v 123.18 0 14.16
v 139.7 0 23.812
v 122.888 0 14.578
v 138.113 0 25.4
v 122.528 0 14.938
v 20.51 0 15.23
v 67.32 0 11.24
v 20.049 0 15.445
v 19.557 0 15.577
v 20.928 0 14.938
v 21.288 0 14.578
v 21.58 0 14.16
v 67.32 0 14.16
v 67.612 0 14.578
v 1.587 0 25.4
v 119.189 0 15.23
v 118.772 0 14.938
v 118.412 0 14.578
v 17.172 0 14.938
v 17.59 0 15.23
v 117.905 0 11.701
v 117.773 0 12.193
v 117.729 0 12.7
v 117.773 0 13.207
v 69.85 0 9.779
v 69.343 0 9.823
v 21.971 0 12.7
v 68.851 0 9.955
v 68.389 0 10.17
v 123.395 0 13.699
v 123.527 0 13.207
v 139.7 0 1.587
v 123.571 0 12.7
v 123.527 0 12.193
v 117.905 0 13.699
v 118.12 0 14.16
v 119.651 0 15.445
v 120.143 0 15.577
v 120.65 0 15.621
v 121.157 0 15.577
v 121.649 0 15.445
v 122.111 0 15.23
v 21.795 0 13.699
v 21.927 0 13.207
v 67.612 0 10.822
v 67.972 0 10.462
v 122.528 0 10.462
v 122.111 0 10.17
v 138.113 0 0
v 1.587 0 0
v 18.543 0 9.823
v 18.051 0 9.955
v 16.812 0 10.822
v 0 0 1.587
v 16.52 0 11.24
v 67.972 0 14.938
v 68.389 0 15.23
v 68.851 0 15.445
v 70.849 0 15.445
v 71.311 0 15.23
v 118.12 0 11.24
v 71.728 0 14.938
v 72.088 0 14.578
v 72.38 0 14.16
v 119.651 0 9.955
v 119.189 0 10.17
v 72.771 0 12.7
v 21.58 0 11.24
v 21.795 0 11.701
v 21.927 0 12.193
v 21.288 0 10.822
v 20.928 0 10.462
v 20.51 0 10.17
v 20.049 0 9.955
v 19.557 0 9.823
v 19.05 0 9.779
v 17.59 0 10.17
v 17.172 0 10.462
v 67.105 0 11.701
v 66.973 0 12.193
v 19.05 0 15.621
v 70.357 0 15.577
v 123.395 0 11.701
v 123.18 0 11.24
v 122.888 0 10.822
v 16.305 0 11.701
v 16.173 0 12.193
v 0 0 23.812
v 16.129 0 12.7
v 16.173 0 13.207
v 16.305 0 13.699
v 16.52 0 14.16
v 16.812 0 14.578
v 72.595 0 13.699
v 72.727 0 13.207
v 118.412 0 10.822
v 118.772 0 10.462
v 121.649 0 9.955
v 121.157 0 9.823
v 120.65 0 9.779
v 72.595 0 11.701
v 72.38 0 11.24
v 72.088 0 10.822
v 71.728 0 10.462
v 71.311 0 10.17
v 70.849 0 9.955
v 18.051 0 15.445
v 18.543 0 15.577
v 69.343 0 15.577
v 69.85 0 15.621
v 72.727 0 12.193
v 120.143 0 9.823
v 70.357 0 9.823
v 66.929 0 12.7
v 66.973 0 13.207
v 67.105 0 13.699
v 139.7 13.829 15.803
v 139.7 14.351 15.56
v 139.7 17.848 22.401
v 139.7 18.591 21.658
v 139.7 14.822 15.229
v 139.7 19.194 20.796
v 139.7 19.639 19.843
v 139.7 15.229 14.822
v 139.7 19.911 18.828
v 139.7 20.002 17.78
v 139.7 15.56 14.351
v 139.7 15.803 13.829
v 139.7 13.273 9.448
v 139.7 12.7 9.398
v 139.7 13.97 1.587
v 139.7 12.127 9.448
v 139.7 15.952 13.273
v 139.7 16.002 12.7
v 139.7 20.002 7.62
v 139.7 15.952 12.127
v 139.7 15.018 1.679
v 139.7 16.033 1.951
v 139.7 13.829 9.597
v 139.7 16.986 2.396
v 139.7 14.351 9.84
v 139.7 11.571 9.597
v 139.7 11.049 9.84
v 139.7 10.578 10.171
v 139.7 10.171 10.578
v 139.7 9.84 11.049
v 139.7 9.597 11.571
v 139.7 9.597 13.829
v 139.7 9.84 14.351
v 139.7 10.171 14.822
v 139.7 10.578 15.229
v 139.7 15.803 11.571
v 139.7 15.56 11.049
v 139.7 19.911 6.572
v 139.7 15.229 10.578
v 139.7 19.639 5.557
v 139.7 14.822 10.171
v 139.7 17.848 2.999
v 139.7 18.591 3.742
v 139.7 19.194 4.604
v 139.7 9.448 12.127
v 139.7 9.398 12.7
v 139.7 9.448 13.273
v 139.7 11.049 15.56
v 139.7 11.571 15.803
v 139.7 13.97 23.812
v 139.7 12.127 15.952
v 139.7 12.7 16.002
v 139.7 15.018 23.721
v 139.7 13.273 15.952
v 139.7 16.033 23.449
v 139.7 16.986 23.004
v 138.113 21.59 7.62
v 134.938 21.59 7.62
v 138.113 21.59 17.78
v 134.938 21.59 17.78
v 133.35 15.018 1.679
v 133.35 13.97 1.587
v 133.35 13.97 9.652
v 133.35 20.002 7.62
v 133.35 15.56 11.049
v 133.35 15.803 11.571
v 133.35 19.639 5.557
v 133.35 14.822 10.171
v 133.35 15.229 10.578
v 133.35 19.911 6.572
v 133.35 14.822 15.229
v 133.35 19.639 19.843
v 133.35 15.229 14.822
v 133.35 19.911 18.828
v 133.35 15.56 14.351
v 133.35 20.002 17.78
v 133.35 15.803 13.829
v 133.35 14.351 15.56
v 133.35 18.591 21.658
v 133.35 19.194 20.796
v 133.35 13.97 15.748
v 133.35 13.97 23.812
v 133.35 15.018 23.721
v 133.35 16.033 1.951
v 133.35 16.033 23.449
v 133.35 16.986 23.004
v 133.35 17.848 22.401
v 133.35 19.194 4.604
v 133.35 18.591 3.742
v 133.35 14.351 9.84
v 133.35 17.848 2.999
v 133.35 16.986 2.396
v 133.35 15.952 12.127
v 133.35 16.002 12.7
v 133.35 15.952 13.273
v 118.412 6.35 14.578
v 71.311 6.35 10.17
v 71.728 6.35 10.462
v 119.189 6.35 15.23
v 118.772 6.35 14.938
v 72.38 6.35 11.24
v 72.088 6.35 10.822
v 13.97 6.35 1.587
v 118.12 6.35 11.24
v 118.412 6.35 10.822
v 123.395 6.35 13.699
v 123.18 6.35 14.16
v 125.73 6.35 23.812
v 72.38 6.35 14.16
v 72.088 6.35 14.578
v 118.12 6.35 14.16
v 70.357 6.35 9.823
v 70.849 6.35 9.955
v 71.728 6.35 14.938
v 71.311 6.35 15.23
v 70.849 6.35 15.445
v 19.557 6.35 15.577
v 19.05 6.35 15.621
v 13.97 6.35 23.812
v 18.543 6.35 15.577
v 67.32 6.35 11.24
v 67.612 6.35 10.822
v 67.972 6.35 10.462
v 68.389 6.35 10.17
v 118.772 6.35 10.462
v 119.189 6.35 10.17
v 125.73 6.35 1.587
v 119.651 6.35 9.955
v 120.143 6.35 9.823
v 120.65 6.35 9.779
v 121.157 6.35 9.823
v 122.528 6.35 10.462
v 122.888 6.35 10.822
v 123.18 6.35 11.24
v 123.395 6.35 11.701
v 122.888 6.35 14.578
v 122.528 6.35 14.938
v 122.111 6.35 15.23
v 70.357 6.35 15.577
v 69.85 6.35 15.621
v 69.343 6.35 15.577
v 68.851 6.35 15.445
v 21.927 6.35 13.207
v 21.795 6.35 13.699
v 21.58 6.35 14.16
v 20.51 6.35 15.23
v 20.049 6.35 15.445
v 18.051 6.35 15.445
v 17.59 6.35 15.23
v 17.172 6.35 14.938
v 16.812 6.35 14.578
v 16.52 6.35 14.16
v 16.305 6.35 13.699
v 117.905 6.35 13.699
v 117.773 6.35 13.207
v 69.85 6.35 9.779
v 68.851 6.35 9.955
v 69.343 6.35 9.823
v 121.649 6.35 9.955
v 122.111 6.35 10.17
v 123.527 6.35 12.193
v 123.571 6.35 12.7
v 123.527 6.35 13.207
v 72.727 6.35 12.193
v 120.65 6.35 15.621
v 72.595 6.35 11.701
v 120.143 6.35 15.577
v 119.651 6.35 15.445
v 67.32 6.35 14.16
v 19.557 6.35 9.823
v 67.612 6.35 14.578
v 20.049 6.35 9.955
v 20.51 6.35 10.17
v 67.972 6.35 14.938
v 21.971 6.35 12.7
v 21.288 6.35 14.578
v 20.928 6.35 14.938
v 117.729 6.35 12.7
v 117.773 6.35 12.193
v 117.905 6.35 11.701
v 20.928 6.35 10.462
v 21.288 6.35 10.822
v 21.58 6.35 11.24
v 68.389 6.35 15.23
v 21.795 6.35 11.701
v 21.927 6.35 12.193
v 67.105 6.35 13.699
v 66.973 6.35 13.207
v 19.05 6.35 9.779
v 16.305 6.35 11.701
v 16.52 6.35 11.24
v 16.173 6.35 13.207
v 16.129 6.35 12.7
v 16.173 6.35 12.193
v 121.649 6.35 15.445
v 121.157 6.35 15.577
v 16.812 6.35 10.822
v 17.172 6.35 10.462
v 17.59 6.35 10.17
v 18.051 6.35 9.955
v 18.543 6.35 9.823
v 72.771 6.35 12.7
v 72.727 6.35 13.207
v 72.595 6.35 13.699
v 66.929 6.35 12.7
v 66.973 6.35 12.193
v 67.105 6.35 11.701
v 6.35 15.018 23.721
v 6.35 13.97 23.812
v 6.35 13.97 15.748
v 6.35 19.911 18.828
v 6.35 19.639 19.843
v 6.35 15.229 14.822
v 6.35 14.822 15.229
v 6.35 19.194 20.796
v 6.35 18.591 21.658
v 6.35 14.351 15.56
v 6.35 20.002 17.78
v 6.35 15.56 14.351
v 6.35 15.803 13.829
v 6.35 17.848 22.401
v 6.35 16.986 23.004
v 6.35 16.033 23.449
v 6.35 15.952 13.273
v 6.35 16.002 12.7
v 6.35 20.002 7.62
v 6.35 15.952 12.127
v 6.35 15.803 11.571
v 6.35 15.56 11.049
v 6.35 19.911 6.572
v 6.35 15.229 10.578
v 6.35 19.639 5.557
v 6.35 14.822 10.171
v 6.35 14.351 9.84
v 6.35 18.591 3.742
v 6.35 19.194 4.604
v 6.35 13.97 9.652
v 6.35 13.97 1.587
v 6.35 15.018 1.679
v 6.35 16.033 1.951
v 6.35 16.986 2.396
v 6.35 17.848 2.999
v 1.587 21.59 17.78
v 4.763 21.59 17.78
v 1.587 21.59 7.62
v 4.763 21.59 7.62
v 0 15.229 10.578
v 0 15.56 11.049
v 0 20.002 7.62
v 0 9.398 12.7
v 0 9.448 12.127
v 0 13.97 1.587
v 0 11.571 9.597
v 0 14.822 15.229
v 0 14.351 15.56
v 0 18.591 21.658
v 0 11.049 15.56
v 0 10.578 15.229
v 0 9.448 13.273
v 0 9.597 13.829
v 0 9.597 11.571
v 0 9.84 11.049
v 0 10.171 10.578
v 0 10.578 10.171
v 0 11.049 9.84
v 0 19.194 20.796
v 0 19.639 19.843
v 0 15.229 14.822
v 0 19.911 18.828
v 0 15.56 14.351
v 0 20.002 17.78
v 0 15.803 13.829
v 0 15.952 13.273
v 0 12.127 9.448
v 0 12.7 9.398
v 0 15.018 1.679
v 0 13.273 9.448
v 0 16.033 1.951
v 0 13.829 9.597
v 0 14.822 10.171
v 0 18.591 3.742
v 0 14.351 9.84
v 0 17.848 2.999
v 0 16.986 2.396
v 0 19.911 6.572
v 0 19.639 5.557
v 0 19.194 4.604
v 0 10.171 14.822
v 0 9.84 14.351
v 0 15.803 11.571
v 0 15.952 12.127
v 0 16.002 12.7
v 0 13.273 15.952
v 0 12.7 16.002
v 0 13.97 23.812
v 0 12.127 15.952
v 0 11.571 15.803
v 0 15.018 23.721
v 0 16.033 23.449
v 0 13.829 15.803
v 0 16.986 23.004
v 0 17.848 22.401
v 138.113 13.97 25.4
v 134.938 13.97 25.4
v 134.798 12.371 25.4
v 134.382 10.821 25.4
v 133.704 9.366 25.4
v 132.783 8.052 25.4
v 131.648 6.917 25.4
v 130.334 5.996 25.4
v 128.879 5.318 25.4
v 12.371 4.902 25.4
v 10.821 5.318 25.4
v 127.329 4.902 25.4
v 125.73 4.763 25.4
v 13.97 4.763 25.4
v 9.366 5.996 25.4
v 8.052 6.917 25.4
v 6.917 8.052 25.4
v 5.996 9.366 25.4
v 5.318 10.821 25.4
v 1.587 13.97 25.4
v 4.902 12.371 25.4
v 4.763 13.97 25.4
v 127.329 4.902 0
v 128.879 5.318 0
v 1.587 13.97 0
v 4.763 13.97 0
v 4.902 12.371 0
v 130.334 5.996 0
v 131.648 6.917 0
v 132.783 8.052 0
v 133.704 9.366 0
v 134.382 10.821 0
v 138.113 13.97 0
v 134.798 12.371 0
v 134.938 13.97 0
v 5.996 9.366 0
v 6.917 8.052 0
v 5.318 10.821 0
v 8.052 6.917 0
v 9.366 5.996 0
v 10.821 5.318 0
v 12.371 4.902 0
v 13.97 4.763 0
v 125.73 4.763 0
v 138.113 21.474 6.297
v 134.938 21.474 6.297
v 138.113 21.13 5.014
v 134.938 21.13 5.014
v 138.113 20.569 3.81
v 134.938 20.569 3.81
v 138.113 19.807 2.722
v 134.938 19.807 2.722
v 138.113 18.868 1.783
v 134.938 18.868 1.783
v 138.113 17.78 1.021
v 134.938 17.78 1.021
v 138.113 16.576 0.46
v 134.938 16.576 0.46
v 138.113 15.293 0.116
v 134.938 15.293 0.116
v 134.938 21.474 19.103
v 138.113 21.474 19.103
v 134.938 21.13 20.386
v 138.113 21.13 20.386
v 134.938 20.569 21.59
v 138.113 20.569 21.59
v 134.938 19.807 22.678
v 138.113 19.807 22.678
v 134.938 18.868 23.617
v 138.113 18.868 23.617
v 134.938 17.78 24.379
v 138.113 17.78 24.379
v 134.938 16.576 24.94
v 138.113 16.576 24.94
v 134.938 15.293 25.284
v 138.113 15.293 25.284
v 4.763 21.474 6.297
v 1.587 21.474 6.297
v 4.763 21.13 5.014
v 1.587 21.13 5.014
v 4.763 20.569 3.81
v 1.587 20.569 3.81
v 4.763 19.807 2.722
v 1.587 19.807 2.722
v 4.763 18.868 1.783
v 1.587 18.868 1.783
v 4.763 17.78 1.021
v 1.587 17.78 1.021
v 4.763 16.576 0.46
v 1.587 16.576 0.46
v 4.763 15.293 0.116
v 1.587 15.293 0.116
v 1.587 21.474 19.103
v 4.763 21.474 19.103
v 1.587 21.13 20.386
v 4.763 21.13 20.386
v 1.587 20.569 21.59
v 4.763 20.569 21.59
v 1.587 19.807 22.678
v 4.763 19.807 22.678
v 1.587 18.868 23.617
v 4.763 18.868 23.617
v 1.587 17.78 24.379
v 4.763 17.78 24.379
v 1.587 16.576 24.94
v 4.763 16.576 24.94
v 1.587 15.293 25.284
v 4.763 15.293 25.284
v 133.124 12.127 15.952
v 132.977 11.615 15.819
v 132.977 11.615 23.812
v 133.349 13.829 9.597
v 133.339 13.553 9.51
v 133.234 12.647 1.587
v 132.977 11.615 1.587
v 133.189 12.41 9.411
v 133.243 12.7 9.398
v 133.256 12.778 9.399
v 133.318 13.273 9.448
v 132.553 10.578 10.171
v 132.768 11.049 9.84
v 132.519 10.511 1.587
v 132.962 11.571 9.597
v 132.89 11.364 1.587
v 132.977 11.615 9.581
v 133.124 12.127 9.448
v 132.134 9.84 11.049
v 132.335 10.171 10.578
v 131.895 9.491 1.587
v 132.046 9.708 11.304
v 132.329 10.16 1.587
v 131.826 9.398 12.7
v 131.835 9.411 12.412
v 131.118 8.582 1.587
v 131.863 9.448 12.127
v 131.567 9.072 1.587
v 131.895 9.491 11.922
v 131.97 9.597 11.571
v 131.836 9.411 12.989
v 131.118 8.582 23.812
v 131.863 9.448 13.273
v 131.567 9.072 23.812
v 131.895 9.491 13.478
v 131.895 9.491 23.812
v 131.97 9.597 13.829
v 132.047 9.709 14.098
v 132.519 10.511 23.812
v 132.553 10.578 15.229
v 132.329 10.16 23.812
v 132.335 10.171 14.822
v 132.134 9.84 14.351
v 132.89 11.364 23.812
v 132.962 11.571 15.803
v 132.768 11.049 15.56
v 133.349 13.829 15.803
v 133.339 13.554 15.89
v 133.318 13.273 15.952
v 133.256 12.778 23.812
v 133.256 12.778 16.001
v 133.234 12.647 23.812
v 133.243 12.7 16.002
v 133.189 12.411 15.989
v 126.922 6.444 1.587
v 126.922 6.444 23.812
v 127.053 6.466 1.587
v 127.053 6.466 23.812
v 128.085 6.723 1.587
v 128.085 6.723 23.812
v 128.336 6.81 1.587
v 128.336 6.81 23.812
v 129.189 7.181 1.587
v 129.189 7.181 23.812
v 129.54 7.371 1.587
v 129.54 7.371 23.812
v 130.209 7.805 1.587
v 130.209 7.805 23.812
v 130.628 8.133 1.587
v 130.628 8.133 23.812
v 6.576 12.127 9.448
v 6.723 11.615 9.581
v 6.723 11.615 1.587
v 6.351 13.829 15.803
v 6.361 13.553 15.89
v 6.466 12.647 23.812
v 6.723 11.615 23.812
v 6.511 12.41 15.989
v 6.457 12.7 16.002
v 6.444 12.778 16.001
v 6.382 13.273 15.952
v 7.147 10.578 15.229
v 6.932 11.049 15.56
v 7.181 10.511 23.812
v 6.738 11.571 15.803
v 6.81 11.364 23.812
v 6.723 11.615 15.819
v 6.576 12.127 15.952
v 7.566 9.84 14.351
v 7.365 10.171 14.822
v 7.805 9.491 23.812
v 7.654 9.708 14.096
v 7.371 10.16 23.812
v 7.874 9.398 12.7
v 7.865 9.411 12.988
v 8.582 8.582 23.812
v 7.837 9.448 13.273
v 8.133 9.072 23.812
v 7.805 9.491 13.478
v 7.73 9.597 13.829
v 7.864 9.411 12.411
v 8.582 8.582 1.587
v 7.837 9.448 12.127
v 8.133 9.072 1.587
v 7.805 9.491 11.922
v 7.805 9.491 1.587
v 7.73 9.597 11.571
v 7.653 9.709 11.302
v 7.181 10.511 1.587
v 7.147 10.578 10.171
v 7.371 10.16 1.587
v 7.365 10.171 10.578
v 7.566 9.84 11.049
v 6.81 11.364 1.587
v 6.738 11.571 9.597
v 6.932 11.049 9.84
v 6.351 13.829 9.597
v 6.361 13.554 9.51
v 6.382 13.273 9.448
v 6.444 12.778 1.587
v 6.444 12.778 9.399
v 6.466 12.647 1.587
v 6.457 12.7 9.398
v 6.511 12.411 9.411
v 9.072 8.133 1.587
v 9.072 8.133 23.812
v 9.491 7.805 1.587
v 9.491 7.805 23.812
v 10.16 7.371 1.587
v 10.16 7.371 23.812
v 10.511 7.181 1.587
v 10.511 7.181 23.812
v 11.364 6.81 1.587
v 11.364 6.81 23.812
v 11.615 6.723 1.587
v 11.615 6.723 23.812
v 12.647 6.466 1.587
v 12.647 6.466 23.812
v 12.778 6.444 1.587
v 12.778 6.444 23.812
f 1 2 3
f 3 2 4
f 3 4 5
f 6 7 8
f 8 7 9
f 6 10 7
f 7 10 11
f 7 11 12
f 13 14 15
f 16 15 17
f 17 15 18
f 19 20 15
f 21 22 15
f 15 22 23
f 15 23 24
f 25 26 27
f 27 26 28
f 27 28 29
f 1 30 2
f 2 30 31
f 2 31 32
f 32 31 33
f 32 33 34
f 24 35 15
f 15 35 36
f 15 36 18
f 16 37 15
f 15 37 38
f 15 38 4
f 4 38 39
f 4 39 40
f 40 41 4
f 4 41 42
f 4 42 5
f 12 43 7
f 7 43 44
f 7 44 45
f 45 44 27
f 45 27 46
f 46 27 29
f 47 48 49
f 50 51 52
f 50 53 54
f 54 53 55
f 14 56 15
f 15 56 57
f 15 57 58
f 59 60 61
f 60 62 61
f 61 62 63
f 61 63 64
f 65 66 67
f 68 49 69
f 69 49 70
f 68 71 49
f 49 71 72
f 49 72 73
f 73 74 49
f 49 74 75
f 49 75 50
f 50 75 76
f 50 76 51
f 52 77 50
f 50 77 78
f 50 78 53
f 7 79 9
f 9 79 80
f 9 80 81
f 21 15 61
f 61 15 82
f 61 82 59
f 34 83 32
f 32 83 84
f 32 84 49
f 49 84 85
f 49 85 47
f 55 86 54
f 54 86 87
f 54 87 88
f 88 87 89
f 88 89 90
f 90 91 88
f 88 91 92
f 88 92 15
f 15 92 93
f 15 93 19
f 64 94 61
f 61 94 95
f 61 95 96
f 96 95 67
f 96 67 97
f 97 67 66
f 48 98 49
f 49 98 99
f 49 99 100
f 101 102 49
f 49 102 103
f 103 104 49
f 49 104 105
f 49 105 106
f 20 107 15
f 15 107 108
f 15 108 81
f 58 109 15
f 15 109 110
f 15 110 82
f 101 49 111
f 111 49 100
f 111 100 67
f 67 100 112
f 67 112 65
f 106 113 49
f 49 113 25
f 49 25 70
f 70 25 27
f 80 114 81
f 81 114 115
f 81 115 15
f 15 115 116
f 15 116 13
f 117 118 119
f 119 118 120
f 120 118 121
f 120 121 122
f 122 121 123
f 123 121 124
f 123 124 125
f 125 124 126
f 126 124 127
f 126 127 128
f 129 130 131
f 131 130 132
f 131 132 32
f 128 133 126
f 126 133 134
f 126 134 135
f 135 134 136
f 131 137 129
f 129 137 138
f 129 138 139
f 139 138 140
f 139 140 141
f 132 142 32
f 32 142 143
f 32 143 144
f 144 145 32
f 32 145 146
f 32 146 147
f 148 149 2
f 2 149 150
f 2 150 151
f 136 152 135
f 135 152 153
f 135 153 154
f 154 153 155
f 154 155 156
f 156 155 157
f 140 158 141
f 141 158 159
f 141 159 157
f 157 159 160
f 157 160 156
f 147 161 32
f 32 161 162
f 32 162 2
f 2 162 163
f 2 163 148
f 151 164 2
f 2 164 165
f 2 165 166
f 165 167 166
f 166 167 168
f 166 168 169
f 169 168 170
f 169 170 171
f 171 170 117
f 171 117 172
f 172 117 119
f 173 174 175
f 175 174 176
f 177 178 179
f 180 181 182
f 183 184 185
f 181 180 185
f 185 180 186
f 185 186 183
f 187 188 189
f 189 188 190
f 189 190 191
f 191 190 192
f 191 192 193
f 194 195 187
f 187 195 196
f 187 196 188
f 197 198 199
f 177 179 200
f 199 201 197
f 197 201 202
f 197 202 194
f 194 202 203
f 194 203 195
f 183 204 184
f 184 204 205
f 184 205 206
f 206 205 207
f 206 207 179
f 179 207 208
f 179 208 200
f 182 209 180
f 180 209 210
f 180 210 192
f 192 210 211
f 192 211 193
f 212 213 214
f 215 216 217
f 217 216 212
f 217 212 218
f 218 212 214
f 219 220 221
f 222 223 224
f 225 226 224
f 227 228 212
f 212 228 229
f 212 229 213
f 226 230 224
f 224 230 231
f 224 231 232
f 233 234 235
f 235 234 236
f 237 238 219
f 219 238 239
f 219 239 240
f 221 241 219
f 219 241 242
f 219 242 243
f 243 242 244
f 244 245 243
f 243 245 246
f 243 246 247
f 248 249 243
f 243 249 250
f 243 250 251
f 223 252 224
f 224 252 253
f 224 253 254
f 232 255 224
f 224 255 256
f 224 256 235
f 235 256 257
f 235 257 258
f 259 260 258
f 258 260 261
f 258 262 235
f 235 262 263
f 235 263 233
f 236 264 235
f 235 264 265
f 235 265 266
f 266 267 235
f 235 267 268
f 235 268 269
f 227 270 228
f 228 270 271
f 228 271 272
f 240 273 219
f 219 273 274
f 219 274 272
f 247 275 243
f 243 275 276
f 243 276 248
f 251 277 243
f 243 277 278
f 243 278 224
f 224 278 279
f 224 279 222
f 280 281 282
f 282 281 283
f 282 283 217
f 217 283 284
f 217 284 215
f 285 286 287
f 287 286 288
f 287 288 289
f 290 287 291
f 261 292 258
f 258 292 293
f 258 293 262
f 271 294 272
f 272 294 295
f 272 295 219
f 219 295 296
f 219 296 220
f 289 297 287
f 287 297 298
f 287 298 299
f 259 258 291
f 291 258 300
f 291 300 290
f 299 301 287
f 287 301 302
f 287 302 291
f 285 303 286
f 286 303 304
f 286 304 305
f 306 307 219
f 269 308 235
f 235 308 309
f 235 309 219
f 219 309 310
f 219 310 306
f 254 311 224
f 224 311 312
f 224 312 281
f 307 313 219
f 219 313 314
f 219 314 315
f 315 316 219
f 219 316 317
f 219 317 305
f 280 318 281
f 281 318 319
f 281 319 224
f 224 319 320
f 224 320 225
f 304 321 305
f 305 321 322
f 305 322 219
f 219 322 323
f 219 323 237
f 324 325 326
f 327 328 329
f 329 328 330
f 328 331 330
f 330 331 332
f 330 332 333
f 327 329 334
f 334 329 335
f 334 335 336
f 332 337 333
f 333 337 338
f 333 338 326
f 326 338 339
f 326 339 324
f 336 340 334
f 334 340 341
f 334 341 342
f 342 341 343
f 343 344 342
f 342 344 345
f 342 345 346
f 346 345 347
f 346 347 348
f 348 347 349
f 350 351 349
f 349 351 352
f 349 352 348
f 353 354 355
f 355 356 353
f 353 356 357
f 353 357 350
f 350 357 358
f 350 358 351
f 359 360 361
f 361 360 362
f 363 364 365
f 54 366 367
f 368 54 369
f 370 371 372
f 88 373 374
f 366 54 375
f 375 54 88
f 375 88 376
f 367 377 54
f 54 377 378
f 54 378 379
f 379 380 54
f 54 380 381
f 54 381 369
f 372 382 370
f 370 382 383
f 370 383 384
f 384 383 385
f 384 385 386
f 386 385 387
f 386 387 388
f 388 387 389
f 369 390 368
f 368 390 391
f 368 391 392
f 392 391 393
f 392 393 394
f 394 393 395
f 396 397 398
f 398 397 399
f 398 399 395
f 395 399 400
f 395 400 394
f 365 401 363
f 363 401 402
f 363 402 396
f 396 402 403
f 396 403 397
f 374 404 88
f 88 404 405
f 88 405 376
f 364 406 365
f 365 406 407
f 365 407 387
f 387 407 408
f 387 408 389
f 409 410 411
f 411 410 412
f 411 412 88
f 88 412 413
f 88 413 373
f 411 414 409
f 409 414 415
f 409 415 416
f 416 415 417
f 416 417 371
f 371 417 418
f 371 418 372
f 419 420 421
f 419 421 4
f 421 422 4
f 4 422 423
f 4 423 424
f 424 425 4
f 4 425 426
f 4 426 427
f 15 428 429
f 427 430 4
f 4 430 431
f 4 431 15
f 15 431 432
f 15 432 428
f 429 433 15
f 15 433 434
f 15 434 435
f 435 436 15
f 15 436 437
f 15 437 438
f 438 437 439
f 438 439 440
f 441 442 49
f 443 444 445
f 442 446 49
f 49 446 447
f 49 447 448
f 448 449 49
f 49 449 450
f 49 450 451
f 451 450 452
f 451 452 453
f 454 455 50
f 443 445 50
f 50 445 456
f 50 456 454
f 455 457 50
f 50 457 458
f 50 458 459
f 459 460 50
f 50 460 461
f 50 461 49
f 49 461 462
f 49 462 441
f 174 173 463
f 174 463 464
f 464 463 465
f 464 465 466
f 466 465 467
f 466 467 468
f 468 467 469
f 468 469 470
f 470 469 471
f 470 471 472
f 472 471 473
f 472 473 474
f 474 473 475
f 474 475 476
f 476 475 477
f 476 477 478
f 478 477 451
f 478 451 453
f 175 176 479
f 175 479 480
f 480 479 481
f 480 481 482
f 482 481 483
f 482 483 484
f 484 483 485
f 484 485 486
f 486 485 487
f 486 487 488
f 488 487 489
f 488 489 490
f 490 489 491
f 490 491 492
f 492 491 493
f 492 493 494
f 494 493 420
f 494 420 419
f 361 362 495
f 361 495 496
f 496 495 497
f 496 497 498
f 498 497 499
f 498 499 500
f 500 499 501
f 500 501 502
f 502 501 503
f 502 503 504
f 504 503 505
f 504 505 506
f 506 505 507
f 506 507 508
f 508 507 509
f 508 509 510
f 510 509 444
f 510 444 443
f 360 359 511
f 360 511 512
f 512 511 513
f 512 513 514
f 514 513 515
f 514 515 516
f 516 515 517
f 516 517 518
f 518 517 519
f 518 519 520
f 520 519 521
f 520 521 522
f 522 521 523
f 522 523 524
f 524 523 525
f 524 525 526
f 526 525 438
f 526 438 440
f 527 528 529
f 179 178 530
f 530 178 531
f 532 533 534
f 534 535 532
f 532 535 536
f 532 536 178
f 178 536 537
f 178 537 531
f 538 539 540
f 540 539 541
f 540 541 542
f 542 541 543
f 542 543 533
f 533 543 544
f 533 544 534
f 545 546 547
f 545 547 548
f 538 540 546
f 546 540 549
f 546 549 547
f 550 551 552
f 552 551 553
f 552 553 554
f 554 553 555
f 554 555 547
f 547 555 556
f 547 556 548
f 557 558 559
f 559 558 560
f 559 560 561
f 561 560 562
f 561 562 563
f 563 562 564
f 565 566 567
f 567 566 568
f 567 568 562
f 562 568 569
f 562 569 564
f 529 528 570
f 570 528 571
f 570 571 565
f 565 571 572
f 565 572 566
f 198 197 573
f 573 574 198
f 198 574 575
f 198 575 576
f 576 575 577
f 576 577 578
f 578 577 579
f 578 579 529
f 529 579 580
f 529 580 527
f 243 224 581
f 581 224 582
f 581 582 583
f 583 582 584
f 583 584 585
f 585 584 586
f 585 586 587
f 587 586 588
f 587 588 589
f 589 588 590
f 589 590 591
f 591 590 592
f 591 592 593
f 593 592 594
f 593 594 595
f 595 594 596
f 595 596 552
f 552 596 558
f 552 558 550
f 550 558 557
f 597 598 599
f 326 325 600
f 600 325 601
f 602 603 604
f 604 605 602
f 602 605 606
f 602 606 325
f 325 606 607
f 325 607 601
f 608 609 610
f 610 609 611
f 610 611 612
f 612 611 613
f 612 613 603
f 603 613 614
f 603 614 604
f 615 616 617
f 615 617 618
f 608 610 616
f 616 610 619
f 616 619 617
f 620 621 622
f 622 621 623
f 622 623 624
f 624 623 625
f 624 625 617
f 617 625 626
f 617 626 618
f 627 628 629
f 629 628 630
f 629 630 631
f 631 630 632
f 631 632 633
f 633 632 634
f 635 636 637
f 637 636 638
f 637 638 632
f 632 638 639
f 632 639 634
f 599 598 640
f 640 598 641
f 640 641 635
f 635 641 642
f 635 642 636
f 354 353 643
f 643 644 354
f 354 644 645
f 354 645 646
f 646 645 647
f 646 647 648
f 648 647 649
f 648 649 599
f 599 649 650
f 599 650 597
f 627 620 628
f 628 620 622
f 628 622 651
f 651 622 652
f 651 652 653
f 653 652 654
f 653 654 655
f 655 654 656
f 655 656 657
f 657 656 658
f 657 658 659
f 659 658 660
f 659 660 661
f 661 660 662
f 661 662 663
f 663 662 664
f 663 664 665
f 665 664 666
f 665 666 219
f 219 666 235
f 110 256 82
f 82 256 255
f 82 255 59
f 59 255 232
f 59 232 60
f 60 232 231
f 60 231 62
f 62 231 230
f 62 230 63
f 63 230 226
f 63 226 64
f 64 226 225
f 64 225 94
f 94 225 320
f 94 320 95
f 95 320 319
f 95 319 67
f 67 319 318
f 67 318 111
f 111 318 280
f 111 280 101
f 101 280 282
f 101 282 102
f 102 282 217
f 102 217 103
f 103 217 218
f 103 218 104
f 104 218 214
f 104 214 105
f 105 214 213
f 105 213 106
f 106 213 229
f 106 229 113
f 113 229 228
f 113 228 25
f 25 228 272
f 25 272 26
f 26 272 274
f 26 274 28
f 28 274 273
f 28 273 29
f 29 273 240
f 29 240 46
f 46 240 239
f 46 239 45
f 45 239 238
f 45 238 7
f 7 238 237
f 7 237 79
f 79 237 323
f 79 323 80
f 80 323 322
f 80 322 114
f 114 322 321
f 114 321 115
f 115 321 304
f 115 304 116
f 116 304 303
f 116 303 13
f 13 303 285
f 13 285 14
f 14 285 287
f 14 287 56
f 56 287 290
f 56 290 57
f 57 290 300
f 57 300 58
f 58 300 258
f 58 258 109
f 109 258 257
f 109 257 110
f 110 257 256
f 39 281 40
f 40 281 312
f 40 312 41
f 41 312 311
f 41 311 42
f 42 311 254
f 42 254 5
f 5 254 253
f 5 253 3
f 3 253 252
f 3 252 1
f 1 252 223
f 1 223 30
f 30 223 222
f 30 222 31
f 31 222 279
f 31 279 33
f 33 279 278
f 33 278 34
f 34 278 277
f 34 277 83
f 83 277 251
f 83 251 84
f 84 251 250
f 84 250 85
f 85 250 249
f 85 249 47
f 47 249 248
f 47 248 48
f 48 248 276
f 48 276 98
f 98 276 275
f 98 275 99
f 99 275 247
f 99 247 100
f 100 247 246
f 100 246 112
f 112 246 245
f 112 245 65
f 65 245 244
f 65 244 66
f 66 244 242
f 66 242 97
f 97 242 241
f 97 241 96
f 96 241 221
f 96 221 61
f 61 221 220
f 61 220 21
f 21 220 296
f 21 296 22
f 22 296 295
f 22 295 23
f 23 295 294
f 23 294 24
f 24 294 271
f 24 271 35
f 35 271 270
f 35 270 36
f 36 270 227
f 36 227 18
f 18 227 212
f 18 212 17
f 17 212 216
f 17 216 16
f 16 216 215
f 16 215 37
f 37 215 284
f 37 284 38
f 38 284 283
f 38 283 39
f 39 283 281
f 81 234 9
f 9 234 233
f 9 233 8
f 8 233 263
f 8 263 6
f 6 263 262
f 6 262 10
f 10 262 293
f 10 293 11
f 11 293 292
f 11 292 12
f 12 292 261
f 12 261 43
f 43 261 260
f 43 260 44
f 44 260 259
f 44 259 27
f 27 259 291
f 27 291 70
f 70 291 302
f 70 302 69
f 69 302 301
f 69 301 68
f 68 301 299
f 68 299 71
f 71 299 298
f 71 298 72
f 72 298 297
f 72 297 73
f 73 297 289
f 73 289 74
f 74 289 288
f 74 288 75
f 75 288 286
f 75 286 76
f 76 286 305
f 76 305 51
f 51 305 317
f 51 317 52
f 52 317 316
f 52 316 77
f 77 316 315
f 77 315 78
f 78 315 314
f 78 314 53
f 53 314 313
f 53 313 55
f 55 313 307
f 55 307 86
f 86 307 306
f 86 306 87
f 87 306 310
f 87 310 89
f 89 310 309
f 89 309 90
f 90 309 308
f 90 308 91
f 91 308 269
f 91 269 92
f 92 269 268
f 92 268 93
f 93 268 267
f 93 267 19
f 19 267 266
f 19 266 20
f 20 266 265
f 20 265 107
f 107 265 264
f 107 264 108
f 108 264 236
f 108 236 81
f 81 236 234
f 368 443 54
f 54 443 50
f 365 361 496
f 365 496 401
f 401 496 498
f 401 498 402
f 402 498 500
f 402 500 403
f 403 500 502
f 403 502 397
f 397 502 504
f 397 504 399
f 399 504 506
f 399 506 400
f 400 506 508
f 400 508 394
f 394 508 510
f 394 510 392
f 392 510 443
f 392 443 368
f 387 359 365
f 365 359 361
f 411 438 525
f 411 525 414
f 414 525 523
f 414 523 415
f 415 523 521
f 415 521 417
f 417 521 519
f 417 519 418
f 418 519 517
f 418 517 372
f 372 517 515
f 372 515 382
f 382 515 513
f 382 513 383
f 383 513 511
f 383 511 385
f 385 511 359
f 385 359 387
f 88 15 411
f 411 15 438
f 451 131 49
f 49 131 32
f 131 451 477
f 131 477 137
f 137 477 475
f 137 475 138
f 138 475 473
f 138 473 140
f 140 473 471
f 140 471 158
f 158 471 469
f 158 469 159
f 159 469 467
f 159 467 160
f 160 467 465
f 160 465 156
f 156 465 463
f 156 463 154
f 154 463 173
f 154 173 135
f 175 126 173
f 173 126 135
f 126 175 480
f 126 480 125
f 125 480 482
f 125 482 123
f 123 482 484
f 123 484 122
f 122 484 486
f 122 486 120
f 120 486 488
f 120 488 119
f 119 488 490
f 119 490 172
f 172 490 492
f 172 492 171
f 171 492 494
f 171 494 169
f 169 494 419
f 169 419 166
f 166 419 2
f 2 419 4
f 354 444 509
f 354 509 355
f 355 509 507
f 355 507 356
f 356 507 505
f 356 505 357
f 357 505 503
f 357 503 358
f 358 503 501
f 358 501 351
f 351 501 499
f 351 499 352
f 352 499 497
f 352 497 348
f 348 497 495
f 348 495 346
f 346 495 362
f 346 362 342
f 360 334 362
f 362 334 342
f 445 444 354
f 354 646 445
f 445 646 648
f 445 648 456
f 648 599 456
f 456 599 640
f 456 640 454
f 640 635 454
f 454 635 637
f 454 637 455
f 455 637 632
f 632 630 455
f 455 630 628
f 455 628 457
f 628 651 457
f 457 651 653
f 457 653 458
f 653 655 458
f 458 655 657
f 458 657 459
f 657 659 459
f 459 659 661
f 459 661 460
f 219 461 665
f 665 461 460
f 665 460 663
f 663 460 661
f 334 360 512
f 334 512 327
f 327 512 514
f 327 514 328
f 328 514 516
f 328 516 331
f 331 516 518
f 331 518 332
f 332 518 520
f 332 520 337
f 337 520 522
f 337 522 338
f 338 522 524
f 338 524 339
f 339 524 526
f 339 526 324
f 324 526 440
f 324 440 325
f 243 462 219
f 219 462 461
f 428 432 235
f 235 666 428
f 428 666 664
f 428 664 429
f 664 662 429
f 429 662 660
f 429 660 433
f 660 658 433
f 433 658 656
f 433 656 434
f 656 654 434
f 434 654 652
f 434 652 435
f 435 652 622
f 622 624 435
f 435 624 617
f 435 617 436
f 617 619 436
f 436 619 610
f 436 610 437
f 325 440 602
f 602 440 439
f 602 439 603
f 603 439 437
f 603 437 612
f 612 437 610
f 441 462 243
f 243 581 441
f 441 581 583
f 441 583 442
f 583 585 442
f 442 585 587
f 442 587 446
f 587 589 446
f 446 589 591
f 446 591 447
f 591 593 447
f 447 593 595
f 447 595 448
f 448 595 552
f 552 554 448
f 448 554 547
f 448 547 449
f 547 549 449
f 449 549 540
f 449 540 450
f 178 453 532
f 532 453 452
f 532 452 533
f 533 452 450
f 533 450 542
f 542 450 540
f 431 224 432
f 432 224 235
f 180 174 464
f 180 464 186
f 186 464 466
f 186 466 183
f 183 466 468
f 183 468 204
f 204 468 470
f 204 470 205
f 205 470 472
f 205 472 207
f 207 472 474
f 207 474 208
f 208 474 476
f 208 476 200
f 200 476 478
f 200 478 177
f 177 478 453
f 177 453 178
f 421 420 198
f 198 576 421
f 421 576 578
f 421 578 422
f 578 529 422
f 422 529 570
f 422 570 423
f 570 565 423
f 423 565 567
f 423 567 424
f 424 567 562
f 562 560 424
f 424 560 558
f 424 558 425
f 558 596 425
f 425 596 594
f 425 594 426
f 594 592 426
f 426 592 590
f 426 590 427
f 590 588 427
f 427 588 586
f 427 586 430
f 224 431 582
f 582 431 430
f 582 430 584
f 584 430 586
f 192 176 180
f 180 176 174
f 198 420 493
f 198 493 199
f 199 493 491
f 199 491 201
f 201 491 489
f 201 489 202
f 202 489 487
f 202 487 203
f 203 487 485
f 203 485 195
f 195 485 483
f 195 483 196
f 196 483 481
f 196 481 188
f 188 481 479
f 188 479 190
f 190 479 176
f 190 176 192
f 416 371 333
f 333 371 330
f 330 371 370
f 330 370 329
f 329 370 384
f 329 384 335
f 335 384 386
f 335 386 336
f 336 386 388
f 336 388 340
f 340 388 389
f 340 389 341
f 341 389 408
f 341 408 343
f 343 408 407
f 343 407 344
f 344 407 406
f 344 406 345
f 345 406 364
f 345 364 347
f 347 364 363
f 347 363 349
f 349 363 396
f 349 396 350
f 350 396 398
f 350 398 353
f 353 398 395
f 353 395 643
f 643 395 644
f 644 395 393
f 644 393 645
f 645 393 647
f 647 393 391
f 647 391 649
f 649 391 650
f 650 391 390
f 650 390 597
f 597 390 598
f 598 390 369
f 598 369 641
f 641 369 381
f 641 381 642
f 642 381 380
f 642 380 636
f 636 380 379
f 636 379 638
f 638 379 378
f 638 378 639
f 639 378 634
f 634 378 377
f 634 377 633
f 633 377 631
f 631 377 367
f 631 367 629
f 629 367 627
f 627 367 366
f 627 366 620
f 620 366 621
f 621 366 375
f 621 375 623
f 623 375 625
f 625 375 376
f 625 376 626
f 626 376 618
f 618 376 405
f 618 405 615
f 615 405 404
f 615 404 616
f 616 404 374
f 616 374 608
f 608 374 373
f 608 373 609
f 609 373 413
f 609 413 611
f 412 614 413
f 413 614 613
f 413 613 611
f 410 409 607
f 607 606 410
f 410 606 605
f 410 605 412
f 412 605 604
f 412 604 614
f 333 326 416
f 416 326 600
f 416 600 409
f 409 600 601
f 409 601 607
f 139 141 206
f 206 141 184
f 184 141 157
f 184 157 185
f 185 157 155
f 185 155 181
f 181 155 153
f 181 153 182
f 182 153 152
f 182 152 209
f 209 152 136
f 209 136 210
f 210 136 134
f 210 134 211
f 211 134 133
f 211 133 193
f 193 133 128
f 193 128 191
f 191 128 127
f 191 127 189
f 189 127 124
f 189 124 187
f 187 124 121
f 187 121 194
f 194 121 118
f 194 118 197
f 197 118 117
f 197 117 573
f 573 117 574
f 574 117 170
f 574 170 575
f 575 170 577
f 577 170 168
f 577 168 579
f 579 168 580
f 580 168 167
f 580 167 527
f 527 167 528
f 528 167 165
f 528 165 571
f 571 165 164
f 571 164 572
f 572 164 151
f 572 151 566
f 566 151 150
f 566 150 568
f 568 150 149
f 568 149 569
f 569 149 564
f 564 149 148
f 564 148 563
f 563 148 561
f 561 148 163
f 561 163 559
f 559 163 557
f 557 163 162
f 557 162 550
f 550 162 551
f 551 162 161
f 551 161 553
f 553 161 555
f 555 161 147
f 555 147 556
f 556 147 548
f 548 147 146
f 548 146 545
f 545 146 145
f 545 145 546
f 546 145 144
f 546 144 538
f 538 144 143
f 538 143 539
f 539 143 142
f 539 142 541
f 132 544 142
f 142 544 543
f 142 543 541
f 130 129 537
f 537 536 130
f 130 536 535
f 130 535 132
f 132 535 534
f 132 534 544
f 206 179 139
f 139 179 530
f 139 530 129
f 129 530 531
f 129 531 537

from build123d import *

# Parameters (mm, degrees)
BOSS_EXTRUDE1_DEPTH = 25.4
FILLET1_R           = 7.62
SKETCH2_R           = 2.921
CUT_EXTRUDE1_DEPTH  = 143.805838816
CHAMFER1_SIZE       = 1.5875
SKETCH3_R           = 3.302
CUT_EXTRUDE2_DEPTH  = 144.622345406


with BuildPart() as part:
    # Sketch1 → Boss-Extrude1 (new body)
    with BuildSketch(Plane.XY):
        Polygon((0, 0), (0, 21.59), (6.35, 21.59), (6.35, 6.35), (133.35, 6.35), (133.35, 21.59), (139.7, 21.59), (139.7, 0), align=None)
    extrude(amount=BOSS_EXTRUDE1_DEPTH)

    # Fillet1
    fillet1_edges = [part.edges().sort_by_distance(p)[0] for p in [
        (136.525, 21.59, 0),
        (136.525, 21.59, 25.4),
        (3.175, 21.59, 0),
        (3.175, 21.59, 25.4),
        (133.35, 6.35, 12.7),
        (6.35, 6.35, 12.7),
    ]]
    fillet(fillet1_edges, radius=FILLET1_R - 0.0001)  # a hair under: the kernel refuses the full size

    # Sketch2 → Cut-Extrude1 (cut, through all)
    with BuildSketch(Plane(origin=(0, 6.35, 0), x_dir=(1, 0, 0), z_dir=(0, 1, 0))):
        with Locations(Location((69.85, -12.7, 0), (0, 0, 270))):
            Circle(SKETCH2_R)
        with Locations(Location((120.65, -12.7, 0), (0, 0, 270))):
            Circle(SKETCH2_R)
        with Locations(Location((19.05, -12.7, 0), (0, 0, 270))):
            Circle(SKETCH2_R)
    extrude(amount=-CUT_EXTRUDE1_DEPTH, mode=Mode.SUBTRACT)

    # Chamfer1
    chamfer1_edges = [part.edges().sort_by_distance(p)[0] for p in [
        (139.7, 6.98505, 0),
        (133.35, 21.59, 12.7),
        (139.7, 21.59, 12.7),
        (133.35, 19.358182962, 23.168182962),
        (133.35, 19.358182962, 2.231817038),
        (0, 6.98505, 0),
        (69.85, 6.35, 0),
        (139.7, 19.358182962, 23.168182962),
        (139.7, 19.358182962, 2.231817038),
        (69.85, 6.35, 25.4),
        (0, 6.98505, 25.4),
        (0, 21.59, 12.7),
        (6.35, 21.59, 12.7),
        (0, 19.358182962, 23.168182962),
        (0, 19.358182962, 2.231817038),
        (6.35, 19.358182962, 23.168182962),
        (6.35, 19.358182962, 2.231817038),
        (131.118182962, 8.581817038, 0),
        (131.118182962, 8.581817038, 25.4),
        (8.581817038, 8.581817038, 0),
        (8.581817038, 8.581817038, 25.4),
        (139.7, 6.98505, 25.4),
    ]]
    chamfer(chamfer1_edges, length=CHAMFER1_SIZE)

    # Sketch3 → Cut-Extrude2 (cut, through all)
    with BuildSketch(Plane(origin=(139.7, 0, 0), x_dir=(0, 0, -1), z_dir=(1, 0, 0))):
        with Locations((-12.7, 12.7)):
            Circle(SKETCH3_R)
    extrude(amount=-CUT_EXTRUDE2_DEPTH, mode=Mode.SUBTRACT)


solid = part.part
